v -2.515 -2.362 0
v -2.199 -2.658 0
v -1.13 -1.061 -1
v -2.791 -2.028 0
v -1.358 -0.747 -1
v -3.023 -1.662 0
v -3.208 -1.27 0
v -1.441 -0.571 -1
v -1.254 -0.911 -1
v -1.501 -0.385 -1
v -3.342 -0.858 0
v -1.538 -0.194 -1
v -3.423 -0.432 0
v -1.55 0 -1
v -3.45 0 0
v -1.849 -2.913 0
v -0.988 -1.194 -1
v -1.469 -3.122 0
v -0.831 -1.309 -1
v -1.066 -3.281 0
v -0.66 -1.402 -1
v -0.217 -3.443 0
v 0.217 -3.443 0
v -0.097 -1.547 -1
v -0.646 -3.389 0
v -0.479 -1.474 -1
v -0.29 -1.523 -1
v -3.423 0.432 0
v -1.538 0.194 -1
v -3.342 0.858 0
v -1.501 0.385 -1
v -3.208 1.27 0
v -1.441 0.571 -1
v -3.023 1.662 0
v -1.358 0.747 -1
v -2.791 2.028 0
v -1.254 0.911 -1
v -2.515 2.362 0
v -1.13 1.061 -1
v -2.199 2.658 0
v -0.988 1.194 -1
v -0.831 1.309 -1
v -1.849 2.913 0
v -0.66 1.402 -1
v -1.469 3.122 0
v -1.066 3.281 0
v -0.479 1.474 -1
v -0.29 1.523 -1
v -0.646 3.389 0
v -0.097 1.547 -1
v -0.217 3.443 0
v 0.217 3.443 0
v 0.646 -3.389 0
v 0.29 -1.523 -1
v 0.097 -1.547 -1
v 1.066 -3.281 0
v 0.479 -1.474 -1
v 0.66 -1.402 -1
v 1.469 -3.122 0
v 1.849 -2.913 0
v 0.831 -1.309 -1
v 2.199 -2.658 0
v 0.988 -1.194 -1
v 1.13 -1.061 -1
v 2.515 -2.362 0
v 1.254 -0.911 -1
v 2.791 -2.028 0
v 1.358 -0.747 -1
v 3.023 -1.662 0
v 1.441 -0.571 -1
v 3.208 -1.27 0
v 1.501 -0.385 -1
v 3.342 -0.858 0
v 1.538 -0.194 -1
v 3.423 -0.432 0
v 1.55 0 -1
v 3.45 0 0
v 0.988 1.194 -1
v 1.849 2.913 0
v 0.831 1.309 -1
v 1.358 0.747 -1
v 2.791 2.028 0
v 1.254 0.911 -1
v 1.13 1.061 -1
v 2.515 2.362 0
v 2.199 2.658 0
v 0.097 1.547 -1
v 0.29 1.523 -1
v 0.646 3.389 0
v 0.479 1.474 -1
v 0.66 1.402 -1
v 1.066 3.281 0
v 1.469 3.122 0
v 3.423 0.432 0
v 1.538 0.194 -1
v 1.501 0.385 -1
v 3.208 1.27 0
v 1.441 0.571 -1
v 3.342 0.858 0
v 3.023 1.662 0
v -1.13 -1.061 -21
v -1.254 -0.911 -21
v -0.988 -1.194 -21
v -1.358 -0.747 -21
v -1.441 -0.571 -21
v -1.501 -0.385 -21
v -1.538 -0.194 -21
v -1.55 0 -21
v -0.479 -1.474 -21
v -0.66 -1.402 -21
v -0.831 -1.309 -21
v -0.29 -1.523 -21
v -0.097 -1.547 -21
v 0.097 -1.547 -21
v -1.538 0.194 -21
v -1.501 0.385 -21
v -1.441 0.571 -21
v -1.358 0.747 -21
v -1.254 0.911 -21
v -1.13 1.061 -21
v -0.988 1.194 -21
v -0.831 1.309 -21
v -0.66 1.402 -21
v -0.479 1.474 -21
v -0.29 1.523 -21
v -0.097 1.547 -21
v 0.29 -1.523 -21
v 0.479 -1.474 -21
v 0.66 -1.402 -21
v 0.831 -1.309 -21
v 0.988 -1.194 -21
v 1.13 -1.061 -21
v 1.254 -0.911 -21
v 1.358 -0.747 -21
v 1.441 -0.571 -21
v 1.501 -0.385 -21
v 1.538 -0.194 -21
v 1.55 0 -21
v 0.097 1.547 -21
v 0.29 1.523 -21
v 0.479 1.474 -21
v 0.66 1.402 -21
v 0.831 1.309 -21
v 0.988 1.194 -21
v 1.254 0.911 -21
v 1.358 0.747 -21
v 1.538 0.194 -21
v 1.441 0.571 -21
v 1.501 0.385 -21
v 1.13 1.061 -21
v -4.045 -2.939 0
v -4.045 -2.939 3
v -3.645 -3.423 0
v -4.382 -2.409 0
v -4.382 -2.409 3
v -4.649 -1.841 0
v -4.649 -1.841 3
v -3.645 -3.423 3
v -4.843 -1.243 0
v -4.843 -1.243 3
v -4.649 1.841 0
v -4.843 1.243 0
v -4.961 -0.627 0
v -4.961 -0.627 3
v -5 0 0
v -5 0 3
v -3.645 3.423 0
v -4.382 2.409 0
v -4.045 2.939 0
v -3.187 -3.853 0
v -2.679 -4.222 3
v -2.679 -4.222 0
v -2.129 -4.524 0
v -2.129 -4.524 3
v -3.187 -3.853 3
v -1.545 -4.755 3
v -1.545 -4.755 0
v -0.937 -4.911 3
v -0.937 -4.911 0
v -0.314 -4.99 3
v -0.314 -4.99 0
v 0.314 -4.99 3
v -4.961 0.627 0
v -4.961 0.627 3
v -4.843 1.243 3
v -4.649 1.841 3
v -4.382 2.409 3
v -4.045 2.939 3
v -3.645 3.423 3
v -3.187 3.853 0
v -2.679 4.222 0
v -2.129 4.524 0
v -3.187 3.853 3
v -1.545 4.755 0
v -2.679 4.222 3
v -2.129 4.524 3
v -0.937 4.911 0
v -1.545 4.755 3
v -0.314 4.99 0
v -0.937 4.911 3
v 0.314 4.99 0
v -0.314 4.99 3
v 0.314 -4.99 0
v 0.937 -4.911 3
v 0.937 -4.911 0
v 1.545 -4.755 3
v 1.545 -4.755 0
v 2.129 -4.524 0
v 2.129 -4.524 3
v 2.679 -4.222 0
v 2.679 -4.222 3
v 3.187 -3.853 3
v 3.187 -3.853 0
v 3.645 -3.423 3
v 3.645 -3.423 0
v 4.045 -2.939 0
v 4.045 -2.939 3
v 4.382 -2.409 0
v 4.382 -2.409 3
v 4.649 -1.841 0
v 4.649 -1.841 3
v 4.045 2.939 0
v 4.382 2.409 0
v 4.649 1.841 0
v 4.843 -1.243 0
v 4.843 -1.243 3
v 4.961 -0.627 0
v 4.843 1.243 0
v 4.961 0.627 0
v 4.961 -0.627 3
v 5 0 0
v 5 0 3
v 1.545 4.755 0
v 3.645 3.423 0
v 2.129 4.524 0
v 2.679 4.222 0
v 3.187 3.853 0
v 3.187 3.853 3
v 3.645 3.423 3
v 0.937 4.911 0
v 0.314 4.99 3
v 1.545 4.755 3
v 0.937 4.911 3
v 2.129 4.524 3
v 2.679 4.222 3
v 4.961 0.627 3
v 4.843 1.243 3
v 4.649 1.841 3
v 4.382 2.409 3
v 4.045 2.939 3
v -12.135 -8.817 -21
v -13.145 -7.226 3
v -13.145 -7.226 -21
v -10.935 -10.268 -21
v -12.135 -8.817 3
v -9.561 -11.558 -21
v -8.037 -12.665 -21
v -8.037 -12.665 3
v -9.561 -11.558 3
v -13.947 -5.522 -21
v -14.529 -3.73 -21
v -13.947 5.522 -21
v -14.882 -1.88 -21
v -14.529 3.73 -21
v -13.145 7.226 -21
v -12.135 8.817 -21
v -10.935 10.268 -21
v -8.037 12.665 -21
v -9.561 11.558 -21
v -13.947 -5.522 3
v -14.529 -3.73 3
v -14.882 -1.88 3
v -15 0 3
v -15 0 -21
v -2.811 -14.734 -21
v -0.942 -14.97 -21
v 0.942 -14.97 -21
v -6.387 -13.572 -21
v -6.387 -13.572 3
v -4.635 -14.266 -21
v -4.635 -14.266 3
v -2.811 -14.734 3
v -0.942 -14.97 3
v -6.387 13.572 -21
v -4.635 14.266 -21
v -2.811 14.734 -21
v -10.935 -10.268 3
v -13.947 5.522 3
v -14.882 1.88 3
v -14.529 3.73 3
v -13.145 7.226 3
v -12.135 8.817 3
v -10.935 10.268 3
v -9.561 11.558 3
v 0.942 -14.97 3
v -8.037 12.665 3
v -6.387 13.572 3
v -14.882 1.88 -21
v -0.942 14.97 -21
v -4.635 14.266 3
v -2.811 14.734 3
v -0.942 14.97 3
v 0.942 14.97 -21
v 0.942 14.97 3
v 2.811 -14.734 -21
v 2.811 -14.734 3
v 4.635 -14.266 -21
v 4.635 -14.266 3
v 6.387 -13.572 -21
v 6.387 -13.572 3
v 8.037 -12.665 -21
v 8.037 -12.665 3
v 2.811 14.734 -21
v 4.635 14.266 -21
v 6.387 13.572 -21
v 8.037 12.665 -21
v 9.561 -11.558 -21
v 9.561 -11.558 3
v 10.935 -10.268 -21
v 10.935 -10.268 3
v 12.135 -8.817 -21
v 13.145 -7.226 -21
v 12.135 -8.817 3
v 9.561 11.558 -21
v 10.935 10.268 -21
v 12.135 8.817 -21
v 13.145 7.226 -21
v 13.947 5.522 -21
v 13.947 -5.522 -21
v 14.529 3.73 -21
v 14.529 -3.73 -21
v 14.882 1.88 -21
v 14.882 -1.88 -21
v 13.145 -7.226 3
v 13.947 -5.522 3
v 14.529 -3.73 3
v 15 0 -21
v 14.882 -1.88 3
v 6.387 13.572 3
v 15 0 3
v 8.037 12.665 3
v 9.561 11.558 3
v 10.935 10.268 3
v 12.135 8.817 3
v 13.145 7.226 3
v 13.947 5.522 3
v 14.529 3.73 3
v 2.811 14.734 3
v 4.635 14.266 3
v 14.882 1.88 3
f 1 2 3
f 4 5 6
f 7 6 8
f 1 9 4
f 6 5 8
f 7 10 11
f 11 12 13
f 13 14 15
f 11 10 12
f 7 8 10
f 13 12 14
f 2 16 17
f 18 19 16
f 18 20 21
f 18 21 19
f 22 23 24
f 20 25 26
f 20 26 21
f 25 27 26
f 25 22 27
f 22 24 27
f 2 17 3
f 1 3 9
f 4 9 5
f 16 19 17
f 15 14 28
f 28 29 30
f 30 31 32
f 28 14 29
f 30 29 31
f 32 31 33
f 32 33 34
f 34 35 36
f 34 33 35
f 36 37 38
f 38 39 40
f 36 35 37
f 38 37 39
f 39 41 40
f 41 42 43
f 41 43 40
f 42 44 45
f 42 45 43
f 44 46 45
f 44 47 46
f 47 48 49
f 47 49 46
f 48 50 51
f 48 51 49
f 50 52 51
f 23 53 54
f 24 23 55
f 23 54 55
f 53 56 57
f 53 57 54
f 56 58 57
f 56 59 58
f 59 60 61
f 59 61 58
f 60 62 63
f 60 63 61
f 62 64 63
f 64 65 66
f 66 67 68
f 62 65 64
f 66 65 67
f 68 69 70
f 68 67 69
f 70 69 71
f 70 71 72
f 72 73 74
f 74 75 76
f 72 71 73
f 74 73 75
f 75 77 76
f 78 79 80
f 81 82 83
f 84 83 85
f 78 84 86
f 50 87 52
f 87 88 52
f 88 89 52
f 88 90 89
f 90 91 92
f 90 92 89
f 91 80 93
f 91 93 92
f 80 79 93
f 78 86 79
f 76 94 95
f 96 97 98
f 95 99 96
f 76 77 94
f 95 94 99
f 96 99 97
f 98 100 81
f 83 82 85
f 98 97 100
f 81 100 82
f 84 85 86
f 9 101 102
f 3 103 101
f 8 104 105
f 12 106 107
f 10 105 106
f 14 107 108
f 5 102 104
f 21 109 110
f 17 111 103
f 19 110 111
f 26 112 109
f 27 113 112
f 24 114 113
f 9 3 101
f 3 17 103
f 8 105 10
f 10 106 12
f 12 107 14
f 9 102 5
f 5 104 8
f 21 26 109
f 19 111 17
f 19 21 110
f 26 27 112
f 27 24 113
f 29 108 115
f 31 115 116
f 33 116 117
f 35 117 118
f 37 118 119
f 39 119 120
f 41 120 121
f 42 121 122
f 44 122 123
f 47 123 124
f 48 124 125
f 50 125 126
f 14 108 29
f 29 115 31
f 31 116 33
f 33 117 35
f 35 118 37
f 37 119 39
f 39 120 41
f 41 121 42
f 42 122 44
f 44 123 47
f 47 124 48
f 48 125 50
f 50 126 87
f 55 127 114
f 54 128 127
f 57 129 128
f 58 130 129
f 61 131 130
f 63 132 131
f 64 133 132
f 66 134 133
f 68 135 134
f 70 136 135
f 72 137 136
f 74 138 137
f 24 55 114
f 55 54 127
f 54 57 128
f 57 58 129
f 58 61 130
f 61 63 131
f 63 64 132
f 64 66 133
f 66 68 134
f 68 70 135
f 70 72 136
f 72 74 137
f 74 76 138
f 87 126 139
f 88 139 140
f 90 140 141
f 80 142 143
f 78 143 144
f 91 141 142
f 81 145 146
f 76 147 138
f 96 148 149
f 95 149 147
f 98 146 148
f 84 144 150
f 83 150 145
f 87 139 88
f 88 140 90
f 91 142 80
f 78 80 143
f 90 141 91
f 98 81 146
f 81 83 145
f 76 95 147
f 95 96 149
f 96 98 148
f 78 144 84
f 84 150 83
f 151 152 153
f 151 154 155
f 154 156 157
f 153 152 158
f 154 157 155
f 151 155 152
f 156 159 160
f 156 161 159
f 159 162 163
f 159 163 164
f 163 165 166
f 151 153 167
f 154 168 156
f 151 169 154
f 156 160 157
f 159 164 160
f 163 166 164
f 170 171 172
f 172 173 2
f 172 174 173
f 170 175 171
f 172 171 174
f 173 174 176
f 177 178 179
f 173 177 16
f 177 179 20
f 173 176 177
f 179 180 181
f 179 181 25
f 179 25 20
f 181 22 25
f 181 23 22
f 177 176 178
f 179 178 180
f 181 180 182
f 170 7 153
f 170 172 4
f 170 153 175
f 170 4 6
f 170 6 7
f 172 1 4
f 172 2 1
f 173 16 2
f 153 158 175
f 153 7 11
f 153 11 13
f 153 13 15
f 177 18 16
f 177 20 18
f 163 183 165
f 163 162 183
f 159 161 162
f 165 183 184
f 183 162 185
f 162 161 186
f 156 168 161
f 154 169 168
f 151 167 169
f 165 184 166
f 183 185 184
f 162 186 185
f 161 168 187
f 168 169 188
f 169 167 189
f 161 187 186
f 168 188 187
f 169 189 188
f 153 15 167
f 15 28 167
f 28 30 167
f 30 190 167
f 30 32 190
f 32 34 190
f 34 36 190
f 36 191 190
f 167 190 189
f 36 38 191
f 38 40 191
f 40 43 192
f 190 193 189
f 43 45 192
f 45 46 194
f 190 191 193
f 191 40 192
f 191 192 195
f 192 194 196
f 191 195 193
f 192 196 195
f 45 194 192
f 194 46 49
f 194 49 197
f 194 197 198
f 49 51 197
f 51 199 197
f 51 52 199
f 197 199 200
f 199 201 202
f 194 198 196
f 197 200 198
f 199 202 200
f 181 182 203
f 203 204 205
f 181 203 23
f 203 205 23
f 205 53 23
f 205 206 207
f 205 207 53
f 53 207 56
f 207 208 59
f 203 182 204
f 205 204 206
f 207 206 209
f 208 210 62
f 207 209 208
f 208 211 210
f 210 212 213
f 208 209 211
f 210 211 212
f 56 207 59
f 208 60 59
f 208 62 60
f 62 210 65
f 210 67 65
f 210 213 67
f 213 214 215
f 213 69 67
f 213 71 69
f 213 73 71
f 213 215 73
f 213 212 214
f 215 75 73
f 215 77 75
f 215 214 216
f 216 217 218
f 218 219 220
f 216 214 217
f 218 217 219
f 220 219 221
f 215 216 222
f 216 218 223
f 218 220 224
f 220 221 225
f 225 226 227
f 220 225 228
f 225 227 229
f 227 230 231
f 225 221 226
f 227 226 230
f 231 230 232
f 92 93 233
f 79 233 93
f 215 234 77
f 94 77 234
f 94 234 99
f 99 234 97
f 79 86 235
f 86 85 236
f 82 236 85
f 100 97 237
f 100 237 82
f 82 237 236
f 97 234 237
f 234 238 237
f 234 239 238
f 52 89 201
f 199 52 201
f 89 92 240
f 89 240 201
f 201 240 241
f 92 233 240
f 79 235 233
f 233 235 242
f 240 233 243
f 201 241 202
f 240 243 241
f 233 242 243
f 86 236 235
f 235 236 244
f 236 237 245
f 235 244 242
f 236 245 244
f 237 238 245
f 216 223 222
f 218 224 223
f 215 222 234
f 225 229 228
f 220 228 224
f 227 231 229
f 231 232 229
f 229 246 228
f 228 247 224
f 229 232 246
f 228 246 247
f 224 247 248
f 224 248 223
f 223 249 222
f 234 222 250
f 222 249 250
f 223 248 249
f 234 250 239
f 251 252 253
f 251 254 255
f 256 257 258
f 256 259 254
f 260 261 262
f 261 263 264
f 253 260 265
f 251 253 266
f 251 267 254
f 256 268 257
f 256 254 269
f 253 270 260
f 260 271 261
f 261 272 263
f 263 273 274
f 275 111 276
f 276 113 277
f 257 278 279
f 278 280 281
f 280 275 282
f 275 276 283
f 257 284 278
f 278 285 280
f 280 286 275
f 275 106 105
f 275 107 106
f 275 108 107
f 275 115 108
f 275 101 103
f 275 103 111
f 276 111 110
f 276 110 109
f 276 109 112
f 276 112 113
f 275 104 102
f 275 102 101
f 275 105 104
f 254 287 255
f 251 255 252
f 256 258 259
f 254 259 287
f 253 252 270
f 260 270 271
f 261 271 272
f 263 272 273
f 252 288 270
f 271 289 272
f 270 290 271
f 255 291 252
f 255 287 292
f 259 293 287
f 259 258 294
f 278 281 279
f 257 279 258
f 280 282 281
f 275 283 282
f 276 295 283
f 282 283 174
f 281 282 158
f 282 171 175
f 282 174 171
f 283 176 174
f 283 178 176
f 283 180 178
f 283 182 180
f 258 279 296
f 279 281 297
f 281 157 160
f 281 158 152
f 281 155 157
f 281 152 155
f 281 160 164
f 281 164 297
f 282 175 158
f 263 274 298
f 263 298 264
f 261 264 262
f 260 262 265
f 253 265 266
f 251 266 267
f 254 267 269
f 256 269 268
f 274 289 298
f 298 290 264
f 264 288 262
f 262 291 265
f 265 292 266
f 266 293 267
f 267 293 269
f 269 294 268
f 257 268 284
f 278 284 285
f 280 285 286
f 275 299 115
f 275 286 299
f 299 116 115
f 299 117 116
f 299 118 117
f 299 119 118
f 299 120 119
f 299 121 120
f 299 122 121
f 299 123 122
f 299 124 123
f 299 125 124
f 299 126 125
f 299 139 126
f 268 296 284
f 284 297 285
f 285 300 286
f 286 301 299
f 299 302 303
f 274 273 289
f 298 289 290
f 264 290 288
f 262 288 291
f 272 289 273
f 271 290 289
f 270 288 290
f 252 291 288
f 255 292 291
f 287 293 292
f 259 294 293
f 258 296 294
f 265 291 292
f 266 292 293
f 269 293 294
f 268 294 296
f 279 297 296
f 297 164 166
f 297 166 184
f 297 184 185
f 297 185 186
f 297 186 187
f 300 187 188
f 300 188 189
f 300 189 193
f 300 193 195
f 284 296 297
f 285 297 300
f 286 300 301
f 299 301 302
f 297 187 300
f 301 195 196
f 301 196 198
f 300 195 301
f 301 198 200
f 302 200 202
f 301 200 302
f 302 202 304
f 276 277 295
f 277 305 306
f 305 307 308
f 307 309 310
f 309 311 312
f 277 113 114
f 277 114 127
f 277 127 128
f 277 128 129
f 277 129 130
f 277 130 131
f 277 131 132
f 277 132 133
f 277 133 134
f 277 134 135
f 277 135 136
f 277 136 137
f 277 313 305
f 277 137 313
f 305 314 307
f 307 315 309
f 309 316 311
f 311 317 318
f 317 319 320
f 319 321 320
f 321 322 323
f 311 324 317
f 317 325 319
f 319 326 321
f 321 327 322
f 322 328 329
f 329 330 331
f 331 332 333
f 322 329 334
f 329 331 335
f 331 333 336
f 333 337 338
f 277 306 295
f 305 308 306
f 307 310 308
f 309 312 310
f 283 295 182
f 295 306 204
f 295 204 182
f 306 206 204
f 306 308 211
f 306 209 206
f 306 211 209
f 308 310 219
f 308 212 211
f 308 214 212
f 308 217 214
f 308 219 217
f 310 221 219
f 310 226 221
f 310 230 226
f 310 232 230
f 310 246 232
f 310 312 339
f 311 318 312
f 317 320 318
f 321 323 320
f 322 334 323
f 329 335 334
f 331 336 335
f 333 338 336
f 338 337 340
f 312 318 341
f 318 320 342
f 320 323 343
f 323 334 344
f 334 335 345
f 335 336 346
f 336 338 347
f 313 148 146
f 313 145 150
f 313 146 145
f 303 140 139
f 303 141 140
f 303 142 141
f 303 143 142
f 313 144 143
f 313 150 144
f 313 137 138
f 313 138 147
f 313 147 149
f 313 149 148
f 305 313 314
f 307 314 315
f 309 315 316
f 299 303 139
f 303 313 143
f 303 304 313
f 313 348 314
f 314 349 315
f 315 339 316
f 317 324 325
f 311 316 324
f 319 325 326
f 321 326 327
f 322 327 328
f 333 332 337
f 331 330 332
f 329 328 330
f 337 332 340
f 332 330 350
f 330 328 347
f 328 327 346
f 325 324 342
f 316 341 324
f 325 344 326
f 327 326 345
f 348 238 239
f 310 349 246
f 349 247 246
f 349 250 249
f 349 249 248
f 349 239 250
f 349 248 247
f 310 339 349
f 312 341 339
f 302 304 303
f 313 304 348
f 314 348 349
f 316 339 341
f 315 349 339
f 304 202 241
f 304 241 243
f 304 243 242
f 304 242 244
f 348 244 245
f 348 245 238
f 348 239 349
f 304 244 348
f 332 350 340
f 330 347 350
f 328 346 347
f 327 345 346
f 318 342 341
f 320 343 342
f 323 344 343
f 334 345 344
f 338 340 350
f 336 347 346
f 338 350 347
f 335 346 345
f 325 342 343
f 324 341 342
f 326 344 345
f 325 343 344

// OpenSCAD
$fn = 50;

difference() {
	union() {
		translate(v = [0, 0, -21.0]) {
			cylinder(h = 24, r = 15.0);
		}
	}
	union() {
		translate(v = [0, 0, 0]) {
			rotate(a = [0, 0, 0]) {
				difference() {
					union() {
						translate(v = [0, 0, -24.0]) {
							cylinder(h = 24, r = 1.25);
						}
						translate(v = [0, 0, -1.0]) {
							cylinder(h = 1.0, r1 = 1.55, r2 = 3.45);
						}
						translate(v = [0, 0, -24.0]) {
							cylinder(h = 24, r = 1.55);
						}
						translate(v = [0, 0, -24.0]) {
							cylinder(h = 24, r = 1.25);
						}
					}
					union();
				}
			}
		}
		#cylinder(h = 3, r = 5.0);
	}
}
